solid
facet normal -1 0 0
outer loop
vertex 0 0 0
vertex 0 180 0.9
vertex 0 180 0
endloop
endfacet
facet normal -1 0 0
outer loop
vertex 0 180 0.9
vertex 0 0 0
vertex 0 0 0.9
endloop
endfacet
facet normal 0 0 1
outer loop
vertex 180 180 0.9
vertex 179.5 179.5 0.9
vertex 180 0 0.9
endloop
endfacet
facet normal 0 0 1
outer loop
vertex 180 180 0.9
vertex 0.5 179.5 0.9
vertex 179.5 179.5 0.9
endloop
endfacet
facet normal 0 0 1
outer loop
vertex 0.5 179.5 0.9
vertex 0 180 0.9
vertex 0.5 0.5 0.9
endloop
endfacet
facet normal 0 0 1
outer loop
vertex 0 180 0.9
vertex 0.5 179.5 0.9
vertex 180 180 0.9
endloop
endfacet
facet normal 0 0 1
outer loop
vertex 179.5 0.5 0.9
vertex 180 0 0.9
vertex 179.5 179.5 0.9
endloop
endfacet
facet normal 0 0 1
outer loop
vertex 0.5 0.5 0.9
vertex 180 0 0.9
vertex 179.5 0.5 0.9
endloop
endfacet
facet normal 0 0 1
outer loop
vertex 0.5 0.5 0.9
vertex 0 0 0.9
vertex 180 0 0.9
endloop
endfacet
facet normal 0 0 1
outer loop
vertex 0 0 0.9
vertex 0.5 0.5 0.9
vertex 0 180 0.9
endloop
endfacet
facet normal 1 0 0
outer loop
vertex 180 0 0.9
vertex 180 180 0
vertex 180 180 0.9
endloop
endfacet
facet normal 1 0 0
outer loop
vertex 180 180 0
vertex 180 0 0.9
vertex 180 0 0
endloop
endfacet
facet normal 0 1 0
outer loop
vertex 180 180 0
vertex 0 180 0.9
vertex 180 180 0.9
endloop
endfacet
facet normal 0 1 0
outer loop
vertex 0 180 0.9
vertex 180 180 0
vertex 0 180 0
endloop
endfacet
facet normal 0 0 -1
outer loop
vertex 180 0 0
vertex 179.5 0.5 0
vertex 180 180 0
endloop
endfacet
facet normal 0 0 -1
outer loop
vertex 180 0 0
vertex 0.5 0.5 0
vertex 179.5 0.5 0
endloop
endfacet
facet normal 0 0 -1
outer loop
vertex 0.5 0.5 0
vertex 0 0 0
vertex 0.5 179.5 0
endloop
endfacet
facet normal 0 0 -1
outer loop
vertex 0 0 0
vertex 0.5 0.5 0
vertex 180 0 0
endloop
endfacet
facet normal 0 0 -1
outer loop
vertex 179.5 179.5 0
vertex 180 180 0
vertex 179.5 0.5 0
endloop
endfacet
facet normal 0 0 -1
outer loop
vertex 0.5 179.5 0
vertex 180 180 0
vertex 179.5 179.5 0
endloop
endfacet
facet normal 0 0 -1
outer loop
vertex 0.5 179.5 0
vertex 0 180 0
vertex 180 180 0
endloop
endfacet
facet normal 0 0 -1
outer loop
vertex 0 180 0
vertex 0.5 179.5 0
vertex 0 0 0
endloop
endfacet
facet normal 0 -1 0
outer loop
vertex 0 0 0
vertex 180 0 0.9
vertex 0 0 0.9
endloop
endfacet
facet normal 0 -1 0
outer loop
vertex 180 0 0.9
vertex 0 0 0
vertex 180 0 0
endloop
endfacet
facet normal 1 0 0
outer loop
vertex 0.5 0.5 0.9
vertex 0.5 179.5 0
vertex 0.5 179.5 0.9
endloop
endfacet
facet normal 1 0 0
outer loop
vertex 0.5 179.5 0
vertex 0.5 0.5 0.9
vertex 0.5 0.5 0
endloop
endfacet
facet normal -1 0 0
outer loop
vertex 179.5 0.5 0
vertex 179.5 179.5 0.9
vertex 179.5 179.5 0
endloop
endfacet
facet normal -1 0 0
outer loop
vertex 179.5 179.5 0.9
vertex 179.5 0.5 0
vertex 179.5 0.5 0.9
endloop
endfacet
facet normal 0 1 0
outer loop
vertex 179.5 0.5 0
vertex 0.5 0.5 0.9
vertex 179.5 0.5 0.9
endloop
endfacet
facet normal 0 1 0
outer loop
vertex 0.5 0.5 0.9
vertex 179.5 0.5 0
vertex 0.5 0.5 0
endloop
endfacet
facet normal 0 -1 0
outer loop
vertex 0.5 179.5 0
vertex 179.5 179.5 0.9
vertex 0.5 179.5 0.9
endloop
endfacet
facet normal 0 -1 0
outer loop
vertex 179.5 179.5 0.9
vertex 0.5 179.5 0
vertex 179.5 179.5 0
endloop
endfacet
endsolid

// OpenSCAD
difference(){
scale([1,1,0.005])
	cube(180);
translate([0.5,0.5,-0.10])
scale([1,1,0.3])
	cube(179);
}
